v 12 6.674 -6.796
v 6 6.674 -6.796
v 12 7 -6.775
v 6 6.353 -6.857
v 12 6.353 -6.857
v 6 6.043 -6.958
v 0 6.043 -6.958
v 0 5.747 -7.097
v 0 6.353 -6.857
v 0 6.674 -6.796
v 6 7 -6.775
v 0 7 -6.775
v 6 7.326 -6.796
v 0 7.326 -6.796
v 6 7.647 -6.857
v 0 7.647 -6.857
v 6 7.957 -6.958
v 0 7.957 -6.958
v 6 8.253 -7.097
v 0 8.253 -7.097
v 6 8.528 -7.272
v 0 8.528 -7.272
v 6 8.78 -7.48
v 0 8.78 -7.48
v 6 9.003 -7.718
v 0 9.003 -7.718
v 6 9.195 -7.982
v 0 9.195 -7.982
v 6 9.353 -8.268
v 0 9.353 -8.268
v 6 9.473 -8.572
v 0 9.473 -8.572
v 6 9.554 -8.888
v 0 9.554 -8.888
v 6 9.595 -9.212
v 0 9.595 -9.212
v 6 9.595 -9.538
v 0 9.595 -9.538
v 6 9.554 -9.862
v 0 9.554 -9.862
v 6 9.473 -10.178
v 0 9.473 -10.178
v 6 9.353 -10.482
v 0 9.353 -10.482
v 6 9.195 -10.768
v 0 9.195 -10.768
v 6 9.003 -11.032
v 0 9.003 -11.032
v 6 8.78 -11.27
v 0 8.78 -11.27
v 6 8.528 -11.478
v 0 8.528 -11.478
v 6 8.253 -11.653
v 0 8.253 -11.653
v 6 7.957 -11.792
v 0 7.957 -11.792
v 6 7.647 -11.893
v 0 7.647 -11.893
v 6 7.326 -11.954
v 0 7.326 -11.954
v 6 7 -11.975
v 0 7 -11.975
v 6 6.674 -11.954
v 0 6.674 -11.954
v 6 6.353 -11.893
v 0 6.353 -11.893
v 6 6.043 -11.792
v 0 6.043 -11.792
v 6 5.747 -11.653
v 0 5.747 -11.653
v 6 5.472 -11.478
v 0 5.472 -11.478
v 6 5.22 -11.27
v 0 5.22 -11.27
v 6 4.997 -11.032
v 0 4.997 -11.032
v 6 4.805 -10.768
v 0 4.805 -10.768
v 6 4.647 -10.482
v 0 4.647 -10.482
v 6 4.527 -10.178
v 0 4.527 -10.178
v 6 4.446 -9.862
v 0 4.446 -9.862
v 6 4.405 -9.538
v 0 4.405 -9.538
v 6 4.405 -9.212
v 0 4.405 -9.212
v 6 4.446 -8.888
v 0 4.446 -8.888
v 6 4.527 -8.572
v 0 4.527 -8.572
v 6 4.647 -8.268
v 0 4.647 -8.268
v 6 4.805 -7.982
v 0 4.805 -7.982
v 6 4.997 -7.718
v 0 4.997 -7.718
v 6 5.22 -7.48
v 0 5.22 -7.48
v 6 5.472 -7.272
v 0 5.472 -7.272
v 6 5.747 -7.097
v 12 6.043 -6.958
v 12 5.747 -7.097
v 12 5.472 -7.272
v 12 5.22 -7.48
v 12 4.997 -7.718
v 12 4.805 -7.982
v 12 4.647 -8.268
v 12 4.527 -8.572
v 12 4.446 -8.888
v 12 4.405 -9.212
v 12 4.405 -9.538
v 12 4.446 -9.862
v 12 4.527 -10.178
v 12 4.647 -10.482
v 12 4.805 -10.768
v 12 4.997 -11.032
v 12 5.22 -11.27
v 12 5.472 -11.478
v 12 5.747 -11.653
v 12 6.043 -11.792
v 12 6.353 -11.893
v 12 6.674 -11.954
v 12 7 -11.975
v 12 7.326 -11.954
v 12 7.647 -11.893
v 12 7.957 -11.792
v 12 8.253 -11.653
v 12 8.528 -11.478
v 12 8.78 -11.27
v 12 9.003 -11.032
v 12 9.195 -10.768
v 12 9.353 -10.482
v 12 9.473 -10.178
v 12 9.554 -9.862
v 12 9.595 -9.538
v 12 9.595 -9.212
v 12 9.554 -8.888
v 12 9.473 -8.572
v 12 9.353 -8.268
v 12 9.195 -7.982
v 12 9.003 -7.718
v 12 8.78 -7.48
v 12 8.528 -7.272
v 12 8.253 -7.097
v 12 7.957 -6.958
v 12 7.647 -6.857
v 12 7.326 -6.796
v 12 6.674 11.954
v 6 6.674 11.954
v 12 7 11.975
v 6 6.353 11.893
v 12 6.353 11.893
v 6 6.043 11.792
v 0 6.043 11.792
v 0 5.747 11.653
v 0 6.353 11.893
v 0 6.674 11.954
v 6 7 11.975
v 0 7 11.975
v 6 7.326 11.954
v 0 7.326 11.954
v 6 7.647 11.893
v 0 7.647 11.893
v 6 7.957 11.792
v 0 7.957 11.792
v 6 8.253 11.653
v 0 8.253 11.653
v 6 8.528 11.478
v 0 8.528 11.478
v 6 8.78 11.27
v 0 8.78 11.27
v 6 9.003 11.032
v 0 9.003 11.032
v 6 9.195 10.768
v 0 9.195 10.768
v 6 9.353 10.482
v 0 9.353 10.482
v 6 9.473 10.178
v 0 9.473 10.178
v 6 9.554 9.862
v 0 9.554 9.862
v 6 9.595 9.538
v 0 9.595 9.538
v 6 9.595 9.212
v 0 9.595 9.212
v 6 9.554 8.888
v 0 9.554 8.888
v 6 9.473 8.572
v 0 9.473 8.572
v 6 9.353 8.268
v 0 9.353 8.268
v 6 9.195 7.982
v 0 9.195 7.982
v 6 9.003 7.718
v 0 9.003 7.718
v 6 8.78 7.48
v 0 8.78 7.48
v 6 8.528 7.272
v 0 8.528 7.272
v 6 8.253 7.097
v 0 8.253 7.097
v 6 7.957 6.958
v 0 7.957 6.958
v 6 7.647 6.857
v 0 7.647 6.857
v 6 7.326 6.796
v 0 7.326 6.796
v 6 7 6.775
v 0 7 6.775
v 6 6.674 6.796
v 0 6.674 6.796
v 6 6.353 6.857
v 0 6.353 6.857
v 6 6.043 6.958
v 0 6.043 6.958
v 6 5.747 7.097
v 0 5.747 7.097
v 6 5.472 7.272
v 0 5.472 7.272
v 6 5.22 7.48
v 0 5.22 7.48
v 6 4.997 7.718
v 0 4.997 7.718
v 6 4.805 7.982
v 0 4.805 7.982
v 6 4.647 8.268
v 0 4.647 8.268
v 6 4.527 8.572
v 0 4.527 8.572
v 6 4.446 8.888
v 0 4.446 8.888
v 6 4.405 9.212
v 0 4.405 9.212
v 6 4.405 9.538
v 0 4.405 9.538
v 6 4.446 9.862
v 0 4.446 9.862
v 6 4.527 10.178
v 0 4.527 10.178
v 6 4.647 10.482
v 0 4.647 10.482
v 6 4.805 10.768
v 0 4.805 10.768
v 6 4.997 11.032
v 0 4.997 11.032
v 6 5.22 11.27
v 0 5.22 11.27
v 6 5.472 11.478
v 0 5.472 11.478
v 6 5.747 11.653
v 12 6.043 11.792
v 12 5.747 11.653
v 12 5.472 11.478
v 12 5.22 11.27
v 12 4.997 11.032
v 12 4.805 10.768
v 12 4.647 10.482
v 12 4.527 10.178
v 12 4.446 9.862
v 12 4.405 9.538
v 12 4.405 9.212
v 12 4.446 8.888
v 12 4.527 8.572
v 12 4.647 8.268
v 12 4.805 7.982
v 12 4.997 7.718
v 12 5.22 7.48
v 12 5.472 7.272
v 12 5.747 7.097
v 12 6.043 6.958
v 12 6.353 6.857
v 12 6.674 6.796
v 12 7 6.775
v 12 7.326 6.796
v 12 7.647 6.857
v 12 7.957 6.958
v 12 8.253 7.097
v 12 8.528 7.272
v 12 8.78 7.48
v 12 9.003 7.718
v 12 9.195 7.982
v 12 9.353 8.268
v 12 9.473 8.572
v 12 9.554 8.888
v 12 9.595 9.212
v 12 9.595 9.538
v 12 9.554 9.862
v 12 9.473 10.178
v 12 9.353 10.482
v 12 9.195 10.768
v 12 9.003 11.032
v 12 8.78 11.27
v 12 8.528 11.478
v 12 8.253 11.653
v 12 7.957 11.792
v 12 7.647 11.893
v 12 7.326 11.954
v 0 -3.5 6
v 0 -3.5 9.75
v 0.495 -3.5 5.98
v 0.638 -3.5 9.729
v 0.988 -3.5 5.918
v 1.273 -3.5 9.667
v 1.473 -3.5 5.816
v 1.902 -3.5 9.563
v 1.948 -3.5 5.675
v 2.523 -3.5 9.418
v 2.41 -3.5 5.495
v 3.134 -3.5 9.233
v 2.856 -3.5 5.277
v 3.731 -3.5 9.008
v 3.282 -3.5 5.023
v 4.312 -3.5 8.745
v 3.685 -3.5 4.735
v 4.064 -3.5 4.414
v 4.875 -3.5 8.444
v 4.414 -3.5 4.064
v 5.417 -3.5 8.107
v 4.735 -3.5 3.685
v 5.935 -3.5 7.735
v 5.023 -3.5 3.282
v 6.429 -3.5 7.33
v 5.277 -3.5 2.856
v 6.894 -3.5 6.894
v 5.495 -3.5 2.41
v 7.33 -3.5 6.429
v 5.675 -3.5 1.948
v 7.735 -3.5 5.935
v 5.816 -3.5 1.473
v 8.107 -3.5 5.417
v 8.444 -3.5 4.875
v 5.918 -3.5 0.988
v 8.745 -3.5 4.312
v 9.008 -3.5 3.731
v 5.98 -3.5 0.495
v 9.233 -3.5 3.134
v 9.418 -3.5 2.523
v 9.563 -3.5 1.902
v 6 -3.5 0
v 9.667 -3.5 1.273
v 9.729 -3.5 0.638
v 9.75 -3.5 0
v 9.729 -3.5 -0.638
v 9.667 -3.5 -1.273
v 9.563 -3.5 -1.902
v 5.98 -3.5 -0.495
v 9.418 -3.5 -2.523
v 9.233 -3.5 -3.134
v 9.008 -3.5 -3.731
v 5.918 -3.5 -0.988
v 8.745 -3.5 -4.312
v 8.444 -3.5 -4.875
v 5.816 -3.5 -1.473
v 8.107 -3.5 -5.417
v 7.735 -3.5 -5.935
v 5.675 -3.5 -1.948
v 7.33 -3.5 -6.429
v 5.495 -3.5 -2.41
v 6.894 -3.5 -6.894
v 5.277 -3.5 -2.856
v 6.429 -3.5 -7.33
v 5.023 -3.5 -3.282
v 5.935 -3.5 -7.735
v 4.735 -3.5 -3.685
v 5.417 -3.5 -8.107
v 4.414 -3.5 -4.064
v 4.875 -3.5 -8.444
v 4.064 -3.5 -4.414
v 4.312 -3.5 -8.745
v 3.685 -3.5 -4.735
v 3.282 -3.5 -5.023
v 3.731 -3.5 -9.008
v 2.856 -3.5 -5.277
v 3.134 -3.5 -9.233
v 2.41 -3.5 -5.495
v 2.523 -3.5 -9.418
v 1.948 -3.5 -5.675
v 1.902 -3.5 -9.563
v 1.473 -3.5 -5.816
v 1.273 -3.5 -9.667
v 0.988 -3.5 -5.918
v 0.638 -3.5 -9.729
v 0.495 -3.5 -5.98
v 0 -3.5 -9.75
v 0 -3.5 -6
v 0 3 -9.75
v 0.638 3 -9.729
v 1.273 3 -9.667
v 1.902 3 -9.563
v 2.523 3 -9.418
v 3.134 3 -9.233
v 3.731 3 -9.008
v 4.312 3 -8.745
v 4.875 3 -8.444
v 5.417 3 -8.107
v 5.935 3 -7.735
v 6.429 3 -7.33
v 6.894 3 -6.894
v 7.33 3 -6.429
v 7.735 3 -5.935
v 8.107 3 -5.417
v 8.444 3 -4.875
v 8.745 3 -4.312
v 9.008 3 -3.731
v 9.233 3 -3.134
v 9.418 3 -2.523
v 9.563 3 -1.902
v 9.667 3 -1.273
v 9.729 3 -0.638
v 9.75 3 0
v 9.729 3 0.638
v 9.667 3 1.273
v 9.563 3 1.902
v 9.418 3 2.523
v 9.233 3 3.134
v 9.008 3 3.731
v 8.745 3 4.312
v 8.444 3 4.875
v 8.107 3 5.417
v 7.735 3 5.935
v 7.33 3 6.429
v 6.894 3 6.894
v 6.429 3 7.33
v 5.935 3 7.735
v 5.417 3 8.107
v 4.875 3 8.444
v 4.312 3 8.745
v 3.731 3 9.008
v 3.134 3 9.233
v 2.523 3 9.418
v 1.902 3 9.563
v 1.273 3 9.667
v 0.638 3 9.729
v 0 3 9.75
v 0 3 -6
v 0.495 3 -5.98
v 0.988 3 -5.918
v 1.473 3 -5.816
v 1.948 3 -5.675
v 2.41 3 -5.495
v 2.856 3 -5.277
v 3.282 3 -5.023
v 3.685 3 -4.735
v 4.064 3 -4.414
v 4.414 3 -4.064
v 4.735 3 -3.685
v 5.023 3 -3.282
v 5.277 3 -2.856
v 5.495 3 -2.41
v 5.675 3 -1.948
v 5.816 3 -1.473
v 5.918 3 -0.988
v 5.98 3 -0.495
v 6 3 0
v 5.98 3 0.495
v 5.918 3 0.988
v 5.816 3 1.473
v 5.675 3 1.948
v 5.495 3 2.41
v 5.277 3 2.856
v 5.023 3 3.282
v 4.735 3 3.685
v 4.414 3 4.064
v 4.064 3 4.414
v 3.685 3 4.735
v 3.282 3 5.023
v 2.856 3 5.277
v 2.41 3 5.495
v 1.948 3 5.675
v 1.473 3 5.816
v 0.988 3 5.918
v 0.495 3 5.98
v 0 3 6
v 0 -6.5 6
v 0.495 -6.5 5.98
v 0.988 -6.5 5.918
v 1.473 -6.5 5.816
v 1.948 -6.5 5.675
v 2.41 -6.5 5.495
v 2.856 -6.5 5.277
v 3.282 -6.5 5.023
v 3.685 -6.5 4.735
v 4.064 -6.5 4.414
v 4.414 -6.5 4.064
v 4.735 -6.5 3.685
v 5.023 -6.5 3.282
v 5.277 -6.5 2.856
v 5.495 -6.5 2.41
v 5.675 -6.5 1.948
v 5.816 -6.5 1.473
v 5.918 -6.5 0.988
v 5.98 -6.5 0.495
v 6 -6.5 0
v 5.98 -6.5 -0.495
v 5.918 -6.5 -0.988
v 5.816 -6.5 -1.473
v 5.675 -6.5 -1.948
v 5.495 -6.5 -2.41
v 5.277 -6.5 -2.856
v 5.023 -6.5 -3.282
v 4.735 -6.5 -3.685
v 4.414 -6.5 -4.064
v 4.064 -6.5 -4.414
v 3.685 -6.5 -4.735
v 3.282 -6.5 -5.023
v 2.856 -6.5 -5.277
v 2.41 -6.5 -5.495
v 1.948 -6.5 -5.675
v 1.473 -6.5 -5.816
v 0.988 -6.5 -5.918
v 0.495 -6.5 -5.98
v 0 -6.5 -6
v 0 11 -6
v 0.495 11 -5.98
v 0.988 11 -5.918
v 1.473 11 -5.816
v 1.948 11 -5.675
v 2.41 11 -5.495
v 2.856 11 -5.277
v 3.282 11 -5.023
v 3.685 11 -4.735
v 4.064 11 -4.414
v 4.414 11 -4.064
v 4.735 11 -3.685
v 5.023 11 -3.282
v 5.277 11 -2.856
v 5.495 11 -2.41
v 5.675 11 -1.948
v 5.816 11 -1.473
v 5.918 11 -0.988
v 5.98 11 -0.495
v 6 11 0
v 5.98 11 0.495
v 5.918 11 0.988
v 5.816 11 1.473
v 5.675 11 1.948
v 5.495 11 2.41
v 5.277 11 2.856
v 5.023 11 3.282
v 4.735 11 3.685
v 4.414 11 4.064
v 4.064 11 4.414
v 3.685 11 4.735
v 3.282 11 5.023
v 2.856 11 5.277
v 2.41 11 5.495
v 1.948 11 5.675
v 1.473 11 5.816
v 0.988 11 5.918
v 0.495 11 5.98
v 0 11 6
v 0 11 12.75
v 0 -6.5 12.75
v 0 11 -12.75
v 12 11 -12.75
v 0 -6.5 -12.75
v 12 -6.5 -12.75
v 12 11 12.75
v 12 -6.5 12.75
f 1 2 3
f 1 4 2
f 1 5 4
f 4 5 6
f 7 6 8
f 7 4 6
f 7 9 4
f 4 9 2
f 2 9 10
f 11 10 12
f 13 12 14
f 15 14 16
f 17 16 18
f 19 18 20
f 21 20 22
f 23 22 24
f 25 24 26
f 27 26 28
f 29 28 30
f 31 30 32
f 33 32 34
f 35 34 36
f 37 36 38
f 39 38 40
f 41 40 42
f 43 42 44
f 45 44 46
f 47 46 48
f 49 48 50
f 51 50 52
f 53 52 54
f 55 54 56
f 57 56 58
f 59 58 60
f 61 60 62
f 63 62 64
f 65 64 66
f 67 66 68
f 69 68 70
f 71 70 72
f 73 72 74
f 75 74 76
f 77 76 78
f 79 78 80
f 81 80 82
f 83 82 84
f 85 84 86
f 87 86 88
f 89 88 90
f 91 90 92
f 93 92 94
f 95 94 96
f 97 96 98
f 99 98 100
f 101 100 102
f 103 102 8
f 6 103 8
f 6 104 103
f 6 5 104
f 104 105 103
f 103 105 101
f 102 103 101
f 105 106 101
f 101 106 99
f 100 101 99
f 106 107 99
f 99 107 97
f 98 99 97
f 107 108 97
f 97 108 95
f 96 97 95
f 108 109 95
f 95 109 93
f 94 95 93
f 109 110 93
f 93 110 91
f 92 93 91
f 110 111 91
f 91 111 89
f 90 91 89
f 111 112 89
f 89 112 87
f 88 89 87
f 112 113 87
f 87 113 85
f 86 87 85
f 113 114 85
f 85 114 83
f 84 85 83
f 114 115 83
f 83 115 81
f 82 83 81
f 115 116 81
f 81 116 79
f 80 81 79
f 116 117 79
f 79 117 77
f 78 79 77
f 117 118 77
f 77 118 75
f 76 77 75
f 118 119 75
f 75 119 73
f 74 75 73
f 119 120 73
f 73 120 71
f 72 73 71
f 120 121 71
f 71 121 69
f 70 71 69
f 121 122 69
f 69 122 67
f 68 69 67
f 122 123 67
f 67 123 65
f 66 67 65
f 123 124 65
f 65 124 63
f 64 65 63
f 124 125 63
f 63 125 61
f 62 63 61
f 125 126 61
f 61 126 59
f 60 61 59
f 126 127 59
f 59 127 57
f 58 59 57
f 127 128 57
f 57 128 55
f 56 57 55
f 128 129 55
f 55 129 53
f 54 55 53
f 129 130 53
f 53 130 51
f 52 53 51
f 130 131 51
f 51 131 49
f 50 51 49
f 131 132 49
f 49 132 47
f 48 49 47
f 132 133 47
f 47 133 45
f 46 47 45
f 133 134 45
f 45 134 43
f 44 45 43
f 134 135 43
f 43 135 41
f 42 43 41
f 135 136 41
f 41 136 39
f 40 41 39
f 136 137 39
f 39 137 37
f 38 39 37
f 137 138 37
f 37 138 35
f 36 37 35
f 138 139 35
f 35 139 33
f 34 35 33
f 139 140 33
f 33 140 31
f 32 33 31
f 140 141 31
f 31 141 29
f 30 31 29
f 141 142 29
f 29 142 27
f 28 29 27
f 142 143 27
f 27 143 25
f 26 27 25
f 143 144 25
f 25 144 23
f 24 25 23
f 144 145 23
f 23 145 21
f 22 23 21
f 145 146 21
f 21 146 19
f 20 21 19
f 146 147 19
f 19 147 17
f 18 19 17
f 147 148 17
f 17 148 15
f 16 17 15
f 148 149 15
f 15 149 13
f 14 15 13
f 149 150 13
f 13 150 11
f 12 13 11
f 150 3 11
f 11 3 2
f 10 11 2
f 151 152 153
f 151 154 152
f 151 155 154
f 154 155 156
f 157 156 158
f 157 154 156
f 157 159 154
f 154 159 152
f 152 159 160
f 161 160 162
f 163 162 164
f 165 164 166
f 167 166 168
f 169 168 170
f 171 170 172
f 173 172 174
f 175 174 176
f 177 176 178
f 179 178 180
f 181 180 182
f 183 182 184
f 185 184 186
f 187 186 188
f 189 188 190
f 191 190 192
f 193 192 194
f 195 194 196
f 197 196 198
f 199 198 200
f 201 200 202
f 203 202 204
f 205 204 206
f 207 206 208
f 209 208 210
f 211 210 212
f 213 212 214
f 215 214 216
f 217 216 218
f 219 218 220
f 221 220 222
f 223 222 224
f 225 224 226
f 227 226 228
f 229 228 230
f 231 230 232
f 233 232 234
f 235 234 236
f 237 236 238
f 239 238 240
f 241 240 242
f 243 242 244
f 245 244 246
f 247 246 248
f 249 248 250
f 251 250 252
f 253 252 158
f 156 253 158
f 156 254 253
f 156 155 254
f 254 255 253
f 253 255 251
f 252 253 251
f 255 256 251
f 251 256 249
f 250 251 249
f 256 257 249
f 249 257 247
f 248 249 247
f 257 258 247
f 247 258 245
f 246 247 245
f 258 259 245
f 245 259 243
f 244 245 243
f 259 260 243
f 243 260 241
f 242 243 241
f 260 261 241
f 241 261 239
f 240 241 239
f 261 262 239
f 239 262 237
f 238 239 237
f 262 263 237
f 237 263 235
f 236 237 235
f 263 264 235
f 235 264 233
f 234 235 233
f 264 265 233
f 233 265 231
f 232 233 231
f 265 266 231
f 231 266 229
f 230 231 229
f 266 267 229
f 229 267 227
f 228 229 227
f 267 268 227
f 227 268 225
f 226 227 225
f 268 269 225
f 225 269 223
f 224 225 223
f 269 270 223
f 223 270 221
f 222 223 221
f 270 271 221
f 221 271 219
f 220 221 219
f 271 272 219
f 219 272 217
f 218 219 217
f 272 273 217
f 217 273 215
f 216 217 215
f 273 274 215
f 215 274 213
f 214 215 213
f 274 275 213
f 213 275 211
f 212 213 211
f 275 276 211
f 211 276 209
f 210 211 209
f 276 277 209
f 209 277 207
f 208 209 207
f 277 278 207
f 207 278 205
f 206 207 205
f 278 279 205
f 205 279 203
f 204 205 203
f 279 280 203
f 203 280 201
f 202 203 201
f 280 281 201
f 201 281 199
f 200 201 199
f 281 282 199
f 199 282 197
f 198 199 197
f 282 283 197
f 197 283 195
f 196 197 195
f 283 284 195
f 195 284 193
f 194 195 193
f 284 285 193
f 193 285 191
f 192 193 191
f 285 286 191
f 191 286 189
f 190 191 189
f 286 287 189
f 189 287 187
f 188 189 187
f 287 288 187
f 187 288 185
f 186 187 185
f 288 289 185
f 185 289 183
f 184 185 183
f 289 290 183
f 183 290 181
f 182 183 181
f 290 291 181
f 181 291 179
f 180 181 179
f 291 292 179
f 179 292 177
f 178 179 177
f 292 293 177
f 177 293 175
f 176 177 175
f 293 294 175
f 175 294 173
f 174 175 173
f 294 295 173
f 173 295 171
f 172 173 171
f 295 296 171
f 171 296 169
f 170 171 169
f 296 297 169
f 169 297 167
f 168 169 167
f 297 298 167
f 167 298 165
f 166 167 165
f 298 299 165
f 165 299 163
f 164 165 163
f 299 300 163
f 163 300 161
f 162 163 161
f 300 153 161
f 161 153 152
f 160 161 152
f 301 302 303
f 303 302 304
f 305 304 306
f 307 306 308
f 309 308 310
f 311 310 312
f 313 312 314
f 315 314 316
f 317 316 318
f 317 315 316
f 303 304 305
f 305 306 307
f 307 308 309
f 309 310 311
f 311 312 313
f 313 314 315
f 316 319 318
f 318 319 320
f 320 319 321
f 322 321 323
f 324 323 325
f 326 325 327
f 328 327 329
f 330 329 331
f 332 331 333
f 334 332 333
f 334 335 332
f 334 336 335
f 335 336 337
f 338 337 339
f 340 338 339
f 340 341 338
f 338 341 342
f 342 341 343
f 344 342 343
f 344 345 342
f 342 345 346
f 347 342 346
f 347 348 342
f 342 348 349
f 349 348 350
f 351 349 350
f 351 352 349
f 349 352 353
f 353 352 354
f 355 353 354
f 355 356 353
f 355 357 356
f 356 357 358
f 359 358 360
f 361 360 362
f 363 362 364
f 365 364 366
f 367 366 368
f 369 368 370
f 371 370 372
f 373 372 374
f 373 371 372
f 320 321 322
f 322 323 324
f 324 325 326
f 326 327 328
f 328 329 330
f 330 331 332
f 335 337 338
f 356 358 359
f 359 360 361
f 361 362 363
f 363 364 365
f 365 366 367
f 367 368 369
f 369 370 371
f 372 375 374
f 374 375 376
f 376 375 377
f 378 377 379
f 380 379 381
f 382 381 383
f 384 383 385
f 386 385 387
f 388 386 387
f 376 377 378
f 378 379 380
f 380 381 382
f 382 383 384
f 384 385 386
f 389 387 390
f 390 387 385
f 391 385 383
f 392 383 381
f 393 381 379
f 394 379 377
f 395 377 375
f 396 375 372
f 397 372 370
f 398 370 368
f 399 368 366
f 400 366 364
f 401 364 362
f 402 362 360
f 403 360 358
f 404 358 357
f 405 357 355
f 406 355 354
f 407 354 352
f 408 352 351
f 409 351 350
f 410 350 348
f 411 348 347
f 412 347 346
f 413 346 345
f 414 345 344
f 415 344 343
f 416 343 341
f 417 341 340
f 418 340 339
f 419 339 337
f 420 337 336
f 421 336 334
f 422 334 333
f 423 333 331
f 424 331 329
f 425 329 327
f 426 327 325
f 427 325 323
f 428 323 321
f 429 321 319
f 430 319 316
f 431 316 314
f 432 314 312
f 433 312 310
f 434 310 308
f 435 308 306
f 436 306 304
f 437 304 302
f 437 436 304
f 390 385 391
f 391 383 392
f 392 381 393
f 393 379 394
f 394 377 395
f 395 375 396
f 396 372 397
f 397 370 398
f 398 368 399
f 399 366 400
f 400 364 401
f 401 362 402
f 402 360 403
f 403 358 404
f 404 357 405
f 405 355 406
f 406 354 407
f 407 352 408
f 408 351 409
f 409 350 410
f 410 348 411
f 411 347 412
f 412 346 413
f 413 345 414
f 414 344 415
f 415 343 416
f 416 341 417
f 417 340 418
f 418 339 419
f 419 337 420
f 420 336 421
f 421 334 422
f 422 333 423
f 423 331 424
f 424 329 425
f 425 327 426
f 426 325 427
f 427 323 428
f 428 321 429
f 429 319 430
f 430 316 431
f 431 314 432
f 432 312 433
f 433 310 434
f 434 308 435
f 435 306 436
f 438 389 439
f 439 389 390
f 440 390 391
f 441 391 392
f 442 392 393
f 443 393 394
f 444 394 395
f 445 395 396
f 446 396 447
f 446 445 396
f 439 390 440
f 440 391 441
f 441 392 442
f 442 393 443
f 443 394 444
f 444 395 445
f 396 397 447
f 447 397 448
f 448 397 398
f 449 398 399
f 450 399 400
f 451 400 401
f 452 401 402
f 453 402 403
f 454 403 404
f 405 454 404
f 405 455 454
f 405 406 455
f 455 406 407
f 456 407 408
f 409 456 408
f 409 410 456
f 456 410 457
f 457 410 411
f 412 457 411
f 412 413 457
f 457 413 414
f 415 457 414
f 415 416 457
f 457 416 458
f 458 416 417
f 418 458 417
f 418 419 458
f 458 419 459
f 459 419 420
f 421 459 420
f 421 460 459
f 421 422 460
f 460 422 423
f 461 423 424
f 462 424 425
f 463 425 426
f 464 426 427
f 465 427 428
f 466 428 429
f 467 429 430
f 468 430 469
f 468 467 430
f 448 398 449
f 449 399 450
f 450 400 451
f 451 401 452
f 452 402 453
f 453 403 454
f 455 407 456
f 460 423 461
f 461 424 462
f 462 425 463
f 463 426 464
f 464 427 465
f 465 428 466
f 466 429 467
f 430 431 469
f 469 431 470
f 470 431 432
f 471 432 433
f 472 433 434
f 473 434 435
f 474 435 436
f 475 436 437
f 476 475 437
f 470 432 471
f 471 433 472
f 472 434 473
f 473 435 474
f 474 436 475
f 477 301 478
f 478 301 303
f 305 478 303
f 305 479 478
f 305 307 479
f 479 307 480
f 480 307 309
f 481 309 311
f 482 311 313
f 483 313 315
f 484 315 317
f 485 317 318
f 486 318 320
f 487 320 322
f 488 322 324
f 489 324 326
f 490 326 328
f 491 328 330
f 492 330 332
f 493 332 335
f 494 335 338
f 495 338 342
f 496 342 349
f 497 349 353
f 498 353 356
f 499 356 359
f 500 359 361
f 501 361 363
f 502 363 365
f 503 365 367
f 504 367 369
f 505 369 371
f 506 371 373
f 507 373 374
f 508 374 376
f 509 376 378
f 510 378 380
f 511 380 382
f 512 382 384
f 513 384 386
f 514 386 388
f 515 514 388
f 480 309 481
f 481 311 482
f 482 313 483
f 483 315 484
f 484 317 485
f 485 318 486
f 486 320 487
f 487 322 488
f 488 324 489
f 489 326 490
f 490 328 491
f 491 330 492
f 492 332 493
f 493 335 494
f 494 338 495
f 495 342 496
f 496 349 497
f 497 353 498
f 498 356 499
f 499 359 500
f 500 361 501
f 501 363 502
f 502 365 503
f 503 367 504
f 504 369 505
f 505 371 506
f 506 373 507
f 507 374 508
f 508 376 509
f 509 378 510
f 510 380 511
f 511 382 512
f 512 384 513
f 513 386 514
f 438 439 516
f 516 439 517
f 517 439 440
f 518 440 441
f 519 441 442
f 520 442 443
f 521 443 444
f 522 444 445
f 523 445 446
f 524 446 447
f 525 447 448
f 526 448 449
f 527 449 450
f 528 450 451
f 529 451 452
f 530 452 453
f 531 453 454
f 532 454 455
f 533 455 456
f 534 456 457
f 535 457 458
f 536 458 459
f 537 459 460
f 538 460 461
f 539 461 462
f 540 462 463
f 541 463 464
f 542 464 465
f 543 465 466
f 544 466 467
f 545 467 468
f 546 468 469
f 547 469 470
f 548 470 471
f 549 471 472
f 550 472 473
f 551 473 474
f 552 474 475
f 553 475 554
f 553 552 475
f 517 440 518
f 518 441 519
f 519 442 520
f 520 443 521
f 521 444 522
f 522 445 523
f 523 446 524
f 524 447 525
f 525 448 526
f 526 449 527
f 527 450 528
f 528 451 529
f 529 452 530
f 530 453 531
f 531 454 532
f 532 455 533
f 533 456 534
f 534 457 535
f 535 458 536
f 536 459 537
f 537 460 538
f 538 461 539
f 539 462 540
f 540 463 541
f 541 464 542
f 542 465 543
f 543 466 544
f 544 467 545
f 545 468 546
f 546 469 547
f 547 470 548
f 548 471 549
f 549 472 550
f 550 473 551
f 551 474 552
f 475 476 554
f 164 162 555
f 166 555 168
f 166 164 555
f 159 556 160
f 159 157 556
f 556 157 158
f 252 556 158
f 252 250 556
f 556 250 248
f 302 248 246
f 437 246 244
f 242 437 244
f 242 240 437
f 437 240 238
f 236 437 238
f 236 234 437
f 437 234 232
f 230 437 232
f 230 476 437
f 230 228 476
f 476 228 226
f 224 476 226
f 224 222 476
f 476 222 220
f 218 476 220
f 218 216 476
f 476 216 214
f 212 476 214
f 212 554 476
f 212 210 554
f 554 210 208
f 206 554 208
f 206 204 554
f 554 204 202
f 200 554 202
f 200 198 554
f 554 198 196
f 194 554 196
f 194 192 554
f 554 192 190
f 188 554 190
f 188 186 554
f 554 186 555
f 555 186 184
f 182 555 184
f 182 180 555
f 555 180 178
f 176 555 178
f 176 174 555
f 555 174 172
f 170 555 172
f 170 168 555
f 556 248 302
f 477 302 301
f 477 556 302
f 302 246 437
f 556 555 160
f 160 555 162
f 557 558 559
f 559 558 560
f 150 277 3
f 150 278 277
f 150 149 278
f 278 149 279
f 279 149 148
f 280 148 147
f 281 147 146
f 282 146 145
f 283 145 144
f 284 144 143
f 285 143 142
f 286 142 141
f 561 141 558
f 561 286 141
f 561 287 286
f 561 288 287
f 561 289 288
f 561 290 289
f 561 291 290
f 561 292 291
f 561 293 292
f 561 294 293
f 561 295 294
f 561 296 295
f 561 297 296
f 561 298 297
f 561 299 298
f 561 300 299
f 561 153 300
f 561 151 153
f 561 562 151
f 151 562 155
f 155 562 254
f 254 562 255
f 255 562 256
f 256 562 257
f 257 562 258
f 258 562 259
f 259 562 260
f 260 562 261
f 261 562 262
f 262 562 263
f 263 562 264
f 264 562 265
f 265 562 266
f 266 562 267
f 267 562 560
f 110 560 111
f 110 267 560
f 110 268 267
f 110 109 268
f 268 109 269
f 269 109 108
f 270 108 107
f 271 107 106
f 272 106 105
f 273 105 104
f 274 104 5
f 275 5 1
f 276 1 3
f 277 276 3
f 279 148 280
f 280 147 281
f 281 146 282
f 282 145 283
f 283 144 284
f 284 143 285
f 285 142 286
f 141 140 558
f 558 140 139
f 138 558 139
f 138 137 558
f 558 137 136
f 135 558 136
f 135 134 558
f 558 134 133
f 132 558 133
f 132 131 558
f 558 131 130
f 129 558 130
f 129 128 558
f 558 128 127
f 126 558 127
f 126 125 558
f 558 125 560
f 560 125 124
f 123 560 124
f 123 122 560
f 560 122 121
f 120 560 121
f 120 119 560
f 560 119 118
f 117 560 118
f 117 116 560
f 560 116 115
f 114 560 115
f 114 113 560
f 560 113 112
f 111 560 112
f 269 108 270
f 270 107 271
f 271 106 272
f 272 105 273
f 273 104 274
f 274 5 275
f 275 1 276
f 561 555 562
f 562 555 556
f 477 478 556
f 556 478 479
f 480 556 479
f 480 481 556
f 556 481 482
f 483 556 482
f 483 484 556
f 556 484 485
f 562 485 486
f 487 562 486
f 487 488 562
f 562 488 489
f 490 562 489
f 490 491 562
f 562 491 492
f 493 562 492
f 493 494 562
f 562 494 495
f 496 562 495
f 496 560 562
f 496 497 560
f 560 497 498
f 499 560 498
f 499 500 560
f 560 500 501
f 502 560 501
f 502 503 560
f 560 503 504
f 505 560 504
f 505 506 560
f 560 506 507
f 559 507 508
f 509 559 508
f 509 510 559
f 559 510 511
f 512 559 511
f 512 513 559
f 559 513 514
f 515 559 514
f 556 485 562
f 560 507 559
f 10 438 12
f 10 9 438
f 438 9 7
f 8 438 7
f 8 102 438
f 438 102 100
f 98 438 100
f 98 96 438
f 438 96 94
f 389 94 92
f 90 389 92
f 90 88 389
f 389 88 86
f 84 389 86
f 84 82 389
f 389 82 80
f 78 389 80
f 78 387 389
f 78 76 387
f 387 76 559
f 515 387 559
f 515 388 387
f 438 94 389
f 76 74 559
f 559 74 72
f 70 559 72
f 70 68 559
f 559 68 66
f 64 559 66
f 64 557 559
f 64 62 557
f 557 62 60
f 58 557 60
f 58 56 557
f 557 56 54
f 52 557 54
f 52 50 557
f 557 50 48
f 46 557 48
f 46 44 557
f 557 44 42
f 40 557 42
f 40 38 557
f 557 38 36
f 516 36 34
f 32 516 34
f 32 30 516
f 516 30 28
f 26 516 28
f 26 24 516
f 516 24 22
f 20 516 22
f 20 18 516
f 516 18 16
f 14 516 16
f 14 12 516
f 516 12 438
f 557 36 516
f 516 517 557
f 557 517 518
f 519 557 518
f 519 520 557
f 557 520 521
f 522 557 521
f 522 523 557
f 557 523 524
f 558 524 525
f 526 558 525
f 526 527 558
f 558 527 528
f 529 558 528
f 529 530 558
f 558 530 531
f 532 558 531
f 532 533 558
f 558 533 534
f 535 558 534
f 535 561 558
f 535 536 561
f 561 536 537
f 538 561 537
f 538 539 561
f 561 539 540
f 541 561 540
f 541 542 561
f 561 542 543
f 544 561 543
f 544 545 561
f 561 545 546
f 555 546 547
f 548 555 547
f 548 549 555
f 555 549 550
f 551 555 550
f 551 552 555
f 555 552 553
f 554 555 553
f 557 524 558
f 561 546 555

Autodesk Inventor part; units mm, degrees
ref_plane "YZ Plane" through (0, 0, 0) normal (1, 0, 0) x (0, 1, 0)
ref_plane "XZ Plane" through (0, 0, 0) normal (0, 1, 0) x (-1, 0, 0)
ref_plane "XY Plane" through (0, 0, 0) normal (0, 0, 1) x (1, 0, 0)
sketch "Sketch1" plane through (0, 0, 0) normal (0, 1, 0) x (-1, 0, 0)
  arc A0 (0, 9.75) -> (0, -9.75) centre (0, 0) ccw
  arc A1 (0, 6) -> (0, -6) centre (0, 0) ccw
  line L0 (0, 9.75) -> (0, 12.75)
  line L1 (0, -9.75) -> (0, -12.75)
  line L2 (0, -12.75) -> (-12, -12.75)
  line L3 (-12, -12.75) -> (-12, 12.75)
  line L4 (-12, 12.75) -> (0, 12.75)
  line L5 (0, 9.75) -> (0, -9.75)
  dimension "d0" = 19.5
  dimension "d1" = 12
  dimension "d2" = 3
  dimension "d3" = 3
  dimension "d4" = 12
extrude "Extrusion4" add sketch "Sketch1" along normal blind 11 and the other way blind 6.5 contours L5 A1 A0 | A0 L1 L2 L3 L4 L0
extrude "Extrusion5" cut sketch "Sketch1" along normal blind 3 and the other way blind 3.5 contours L5 A1 A0
sketch "Sketch3" plane through (0, -6.5, 12.75) normal (-1, 0, 0) x (0, 0, 1)
  line L0 (-25.5, 17.5) -> (-18.75, 17.5)
  line L1 (-22.125, 17.5) -> (-22.125, 9.5)
  line L2 (-3, 9.5) -> (-22.5, 9.5) projected
  line L3 (0, 17.5) -> (-6.75, 17.5)
  line L4 (-6.75, 17.5) -> (0, 17.5) projected
  line L5 (-3.375, 17.5) -> (-3.375, 9.5)
  circle A0 centre (-22.125, 13.5) radius 2.6
  circle A1 centre (-3.375, 13.5) radius 2.6
  point P0 (-12.75, 6.5)
  dimension "d23" = 5.2
  dimension "d24" = 5.2
extrude "Extrusion6" cut sketch "Sketch3" against normal blind 30
properties part number "bearing_holder"
